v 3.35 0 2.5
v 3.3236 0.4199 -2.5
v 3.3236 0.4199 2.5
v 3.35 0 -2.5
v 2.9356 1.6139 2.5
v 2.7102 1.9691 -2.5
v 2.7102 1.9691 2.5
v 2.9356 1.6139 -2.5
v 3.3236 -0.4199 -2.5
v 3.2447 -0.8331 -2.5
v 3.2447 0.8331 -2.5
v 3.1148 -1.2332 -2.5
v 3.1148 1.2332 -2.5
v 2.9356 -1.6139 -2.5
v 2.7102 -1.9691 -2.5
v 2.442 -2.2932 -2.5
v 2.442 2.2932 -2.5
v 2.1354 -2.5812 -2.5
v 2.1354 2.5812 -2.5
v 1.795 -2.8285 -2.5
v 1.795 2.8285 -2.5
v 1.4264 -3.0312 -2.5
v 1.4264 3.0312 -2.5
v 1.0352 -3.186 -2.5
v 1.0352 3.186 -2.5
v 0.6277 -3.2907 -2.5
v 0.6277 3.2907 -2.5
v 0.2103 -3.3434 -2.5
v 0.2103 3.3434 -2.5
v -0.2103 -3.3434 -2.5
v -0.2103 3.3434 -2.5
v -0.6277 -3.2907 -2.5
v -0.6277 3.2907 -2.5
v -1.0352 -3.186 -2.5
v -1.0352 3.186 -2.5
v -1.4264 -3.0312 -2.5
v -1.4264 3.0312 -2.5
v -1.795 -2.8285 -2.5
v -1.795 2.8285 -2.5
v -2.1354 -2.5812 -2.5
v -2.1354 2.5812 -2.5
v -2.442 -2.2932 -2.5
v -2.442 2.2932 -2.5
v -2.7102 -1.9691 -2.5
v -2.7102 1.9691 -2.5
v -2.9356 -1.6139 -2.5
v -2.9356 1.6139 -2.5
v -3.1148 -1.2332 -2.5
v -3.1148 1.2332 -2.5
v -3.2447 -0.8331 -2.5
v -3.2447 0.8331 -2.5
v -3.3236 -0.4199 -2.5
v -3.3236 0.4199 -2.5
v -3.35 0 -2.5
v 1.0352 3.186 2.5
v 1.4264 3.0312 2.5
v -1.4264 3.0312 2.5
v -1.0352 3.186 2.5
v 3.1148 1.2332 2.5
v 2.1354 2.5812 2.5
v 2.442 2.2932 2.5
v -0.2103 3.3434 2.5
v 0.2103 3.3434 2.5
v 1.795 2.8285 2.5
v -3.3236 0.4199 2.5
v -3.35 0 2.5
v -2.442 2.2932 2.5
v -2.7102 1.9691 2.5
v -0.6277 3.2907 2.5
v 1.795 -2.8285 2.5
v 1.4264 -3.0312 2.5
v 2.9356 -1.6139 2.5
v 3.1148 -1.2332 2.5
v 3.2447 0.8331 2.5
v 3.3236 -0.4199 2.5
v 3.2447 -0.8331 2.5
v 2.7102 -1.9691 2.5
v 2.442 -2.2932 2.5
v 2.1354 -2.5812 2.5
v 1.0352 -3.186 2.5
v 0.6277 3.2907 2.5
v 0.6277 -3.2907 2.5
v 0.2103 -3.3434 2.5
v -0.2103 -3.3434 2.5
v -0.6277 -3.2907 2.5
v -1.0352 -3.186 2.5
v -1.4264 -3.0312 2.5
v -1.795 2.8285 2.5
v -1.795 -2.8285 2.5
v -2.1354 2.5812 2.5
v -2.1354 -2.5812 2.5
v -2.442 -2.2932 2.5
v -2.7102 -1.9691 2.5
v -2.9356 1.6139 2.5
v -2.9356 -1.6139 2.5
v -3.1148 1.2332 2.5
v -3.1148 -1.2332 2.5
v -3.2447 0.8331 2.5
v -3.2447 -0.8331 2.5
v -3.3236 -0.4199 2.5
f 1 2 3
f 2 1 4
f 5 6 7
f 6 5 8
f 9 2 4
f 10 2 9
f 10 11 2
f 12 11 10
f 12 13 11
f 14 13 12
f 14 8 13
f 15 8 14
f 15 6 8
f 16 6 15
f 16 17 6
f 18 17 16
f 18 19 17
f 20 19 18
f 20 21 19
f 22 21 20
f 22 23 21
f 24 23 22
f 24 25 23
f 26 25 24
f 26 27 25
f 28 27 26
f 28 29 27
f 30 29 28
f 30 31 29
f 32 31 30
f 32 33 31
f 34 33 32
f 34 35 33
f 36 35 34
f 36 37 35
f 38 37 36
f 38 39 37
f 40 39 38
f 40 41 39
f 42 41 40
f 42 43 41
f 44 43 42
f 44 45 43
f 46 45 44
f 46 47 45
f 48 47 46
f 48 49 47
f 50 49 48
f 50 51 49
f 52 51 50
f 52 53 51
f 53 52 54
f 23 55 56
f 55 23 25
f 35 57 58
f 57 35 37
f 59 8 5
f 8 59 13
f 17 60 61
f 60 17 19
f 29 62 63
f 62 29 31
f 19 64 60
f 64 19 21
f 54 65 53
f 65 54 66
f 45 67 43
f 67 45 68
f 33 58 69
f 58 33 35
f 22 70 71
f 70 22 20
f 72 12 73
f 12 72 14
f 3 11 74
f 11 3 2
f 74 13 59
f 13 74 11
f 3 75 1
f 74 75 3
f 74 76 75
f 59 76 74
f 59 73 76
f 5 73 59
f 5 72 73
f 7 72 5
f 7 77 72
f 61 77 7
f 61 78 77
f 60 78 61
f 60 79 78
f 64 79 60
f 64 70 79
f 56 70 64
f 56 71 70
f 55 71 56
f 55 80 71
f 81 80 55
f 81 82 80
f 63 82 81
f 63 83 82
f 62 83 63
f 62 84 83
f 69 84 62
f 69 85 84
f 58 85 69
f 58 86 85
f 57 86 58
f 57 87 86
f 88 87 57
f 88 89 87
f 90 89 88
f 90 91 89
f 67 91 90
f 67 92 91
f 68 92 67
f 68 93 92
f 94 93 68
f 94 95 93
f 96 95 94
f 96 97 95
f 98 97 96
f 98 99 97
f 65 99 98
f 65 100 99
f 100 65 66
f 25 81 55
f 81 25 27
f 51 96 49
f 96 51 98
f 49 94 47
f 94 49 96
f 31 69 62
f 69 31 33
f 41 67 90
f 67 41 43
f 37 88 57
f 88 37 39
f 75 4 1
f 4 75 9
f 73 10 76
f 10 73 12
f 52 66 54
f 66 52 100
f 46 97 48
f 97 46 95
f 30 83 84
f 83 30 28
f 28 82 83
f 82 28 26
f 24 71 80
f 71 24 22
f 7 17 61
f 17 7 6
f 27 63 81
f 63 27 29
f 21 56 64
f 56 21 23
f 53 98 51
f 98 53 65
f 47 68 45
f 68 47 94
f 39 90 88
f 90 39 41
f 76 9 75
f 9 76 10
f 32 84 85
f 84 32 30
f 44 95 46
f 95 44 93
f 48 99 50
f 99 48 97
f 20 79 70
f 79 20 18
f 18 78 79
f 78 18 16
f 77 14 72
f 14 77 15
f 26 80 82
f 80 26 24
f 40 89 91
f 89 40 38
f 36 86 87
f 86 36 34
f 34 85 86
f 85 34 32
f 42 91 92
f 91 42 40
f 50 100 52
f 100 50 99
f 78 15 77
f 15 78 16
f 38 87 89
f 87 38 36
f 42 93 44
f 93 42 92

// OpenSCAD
$fn = 50;


difference() {
	union() {
		translate(v = [0, 0, -2.5000000000]) {
			cylinder(h = 5, r = 3.3500000000);
		}
	}
	union() {
		translate(v = [0, 0, -100.0000000000]) {
			cylinder(h = 200, r = 0);
		}
	}
}
